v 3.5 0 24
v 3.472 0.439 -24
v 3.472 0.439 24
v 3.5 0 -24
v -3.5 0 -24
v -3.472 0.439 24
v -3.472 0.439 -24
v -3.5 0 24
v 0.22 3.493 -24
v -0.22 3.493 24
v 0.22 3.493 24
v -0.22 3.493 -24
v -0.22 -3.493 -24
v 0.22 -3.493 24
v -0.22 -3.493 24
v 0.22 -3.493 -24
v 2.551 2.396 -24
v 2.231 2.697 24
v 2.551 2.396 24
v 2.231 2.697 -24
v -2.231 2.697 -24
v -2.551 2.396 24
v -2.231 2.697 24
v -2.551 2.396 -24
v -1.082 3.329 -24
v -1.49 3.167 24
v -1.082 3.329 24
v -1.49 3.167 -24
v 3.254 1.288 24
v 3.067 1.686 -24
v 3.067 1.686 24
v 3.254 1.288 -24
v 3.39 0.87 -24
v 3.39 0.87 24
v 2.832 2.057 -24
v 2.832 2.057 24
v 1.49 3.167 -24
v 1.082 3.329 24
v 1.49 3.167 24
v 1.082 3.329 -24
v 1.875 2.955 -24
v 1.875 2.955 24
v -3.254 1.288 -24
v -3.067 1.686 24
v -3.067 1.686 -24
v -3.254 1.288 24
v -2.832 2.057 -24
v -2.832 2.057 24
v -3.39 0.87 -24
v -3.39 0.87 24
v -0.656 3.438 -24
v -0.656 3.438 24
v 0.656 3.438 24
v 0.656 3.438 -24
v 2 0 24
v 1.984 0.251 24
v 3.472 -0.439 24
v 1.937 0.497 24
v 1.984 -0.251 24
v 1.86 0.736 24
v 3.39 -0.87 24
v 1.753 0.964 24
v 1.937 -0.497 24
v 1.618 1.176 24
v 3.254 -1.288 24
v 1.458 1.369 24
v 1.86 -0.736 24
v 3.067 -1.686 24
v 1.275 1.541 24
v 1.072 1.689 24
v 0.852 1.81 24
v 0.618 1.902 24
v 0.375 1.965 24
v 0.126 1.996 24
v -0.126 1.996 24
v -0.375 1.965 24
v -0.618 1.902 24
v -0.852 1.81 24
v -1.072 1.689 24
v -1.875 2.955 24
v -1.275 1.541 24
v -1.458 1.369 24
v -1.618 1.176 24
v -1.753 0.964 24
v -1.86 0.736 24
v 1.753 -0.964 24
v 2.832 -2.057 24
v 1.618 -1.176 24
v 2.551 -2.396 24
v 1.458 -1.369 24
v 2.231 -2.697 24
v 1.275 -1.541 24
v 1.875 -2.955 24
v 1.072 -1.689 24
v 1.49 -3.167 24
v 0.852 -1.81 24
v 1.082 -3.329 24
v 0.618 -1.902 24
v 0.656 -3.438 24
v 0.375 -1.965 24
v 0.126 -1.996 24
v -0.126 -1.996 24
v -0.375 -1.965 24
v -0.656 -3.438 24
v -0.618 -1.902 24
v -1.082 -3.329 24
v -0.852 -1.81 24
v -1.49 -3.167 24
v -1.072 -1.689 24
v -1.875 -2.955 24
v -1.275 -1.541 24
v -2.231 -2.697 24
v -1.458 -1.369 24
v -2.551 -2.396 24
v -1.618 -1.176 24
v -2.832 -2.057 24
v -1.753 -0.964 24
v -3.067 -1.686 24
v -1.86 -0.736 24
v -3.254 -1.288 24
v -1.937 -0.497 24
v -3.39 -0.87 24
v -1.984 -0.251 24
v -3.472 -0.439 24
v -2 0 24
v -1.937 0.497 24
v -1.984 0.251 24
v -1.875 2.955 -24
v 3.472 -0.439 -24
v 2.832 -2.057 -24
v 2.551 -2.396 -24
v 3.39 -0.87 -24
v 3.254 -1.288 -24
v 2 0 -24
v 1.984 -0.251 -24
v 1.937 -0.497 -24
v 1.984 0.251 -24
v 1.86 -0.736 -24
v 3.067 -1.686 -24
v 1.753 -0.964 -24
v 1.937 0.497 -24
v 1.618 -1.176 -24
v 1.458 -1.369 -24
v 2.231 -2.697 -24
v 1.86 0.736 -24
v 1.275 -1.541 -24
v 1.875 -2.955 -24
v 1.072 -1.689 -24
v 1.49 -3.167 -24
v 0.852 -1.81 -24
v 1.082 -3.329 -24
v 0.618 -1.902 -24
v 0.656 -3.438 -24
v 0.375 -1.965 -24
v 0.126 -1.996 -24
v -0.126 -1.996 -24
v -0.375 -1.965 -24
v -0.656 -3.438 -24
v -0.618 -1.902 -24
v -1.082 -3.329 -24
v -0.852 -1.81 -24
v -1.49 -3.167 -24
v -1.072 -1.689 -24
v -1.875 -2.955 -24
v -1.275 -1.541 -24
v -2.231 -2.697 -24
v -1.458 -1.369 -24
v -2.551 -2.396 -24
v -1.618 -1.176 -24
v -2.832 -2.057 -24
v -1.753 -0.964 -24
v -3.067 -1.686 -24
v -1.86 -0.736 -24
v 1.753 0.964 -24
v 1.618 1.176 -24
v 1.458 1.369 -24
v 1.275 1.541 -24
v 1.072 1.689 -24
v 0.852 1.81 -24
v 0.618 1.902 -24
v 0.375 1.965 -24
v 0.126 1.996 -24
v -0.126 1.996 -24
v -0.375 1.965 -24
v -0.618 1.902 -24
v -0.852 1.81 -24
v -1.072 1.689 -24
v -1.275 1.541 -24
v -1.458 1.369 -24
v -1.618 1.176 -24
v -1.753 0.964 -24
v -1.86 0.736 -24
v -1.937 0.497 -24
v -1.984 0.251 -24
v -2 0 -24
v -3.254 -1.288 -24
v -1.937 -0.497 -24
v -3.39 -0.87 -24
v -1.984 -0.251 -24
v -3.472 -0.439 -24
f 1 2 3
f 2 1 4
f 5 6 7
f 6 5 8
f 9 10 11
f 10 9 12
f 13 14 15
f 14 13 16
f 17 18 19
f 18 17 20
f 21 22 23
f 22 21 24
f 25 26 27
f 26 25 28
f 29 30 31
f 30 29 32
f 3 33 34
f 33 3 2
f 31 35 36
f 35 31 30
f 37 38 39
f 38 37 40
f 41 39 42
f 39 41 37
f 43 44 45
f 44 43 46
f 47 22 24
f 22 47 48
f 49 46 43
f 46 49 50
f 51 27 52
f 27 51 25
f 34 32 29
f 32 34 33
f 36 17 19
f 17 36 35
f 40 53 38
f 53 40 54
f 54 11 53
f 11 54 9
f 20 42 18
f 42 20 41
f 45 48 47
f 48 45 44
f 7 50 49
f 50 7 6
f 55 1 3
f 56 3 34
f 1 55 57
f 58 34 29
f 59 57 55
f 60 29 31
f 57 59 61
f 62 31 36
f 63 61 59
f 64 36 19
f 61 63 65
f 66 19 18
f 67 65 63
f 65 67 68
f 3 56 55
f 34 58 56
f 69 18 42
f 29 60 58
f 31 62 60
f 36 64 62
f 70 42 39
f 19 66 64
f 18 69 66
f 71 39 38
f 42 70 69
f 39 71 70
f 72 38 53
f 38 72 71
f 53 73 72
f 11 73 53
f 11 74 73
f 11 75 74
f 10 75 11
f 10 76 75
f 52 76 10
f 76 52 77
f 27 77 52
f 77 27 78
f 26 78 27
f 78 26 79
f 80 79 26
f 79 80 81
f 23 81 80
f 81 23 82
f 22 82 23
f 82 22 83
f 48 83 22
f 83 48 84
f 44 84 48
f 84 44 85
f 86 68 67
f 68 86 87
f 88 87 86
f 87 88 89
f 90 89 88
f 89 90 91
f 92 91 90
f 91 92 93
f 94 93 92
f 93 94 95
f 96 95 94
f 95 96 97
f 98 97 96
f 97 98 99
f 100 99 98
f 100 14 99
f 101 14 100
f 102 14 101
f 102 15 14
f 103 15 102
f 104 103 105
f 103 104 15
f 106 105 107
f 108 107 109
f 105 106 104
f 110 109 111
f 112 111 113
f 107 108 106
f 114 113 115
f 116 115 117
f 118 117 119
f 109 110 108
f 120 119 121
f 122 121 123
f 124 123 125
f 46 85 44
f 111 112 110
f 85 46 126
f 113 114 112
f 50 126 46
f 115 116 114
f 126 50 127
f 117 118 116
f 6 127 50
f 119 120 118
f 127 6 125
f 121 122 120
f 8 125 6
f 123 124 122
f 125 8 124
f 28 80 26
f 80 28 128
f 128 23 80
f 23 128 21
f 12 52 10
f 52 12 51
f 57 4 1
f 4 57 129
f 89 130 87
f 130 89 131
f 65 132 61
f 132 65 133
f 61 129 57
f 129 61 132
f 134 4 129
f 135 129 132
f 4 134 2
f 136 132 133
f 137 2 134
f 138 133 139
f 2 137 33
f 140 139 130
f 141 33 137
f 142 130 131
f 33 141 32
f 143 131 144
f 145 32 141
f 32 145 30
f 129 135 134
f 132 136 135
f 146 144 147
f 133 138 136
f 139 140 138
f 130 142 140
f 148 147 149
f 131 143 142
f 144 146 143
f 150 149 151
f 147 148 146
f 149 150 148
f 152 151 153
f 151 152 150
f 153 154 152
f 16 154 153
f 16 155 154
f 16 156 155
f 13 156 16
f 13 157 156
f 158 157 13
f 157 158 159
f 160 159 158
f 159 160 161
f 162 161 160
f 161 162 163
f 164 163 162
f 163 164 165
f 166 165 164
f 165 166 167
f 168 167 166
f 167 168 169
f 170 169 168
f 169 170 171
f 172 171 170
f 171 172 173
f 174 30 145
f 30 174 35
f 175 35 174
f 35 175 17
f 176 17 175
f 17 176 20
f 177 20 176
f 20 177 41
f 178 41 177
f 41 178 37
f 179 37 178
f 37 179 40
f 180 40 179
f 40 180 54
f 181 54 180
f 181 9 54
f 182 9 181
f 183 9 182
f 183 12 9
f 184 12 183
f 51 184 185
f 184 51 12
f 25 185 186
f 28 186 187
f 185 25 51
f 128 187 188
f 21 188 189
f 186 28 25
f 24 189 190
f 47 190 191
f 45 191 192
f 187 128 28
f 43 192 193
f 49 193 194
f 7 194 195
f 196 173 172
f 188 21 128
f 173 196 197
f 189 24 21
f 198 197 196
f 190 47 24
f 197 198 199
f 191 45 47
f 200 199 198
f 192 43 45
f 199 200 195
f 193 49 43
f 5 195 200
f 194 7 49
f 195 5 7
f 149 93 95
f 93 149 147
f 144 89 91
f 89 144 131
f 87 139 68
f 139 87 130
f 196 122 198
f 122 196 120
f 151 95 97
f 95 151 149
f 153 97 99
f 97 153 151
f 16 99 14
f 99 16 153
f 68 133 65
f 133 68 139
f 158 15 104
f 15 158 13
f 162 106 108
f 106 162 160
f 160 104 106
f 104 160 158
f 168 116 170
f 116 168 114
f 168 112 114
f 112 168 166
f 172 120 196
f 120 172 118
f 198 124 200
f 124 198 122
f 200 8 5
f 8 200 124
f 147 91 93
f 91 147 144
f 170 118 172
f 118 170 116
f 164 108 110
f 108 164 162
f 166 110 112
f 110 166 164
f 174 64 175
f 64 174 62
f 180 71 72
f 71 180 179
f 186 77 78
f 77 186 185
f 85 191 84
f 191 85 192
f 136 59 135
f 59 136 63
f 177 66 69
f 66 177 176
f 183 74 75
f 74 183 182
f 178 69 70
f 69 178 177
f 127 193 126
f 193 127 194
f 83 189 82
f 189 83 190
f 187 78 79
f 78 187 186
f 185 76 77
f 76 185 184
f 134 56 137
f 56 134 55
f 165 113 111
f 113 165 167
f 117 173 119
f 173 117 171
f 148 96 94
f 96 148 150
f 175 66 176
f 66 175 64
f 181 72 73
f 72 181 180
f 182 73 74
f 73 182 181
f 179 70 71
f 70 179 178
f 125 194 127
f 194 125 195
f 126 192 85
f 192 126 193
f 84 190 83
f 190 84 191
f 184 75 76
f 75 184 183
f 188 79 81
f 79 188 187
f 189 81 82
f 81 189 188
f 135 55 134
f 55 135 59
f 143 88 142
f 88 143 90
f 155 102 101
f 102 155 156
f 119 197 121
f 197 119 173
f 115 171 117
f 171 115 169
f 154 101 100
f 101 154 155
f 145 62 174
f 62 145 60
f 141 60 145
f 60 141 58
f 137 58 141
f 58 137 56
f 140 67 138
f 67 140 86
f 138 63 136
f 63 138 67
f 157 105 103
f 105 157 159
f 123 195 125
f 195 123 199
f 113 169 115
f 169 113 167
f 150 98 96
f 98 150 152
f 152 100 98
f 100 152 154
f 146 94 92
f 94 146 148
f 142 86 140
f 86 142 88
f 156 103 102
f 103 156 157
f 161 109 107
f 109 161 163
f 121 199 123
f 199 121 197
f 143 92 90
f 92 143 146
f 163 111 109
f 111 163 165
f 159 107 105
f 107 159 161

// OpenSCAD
$fn = 50;


difference() {
	union() {
		translate(v = [0, 0, -24.0000000000]) {
			cylinder(h = 48, r = 3.5000000000);
		}
	}
	union() {
		translate(v = [0, 0, -100.0000000000]) {
			cylinder(h = 200, r = 2);
		}
	}
}
